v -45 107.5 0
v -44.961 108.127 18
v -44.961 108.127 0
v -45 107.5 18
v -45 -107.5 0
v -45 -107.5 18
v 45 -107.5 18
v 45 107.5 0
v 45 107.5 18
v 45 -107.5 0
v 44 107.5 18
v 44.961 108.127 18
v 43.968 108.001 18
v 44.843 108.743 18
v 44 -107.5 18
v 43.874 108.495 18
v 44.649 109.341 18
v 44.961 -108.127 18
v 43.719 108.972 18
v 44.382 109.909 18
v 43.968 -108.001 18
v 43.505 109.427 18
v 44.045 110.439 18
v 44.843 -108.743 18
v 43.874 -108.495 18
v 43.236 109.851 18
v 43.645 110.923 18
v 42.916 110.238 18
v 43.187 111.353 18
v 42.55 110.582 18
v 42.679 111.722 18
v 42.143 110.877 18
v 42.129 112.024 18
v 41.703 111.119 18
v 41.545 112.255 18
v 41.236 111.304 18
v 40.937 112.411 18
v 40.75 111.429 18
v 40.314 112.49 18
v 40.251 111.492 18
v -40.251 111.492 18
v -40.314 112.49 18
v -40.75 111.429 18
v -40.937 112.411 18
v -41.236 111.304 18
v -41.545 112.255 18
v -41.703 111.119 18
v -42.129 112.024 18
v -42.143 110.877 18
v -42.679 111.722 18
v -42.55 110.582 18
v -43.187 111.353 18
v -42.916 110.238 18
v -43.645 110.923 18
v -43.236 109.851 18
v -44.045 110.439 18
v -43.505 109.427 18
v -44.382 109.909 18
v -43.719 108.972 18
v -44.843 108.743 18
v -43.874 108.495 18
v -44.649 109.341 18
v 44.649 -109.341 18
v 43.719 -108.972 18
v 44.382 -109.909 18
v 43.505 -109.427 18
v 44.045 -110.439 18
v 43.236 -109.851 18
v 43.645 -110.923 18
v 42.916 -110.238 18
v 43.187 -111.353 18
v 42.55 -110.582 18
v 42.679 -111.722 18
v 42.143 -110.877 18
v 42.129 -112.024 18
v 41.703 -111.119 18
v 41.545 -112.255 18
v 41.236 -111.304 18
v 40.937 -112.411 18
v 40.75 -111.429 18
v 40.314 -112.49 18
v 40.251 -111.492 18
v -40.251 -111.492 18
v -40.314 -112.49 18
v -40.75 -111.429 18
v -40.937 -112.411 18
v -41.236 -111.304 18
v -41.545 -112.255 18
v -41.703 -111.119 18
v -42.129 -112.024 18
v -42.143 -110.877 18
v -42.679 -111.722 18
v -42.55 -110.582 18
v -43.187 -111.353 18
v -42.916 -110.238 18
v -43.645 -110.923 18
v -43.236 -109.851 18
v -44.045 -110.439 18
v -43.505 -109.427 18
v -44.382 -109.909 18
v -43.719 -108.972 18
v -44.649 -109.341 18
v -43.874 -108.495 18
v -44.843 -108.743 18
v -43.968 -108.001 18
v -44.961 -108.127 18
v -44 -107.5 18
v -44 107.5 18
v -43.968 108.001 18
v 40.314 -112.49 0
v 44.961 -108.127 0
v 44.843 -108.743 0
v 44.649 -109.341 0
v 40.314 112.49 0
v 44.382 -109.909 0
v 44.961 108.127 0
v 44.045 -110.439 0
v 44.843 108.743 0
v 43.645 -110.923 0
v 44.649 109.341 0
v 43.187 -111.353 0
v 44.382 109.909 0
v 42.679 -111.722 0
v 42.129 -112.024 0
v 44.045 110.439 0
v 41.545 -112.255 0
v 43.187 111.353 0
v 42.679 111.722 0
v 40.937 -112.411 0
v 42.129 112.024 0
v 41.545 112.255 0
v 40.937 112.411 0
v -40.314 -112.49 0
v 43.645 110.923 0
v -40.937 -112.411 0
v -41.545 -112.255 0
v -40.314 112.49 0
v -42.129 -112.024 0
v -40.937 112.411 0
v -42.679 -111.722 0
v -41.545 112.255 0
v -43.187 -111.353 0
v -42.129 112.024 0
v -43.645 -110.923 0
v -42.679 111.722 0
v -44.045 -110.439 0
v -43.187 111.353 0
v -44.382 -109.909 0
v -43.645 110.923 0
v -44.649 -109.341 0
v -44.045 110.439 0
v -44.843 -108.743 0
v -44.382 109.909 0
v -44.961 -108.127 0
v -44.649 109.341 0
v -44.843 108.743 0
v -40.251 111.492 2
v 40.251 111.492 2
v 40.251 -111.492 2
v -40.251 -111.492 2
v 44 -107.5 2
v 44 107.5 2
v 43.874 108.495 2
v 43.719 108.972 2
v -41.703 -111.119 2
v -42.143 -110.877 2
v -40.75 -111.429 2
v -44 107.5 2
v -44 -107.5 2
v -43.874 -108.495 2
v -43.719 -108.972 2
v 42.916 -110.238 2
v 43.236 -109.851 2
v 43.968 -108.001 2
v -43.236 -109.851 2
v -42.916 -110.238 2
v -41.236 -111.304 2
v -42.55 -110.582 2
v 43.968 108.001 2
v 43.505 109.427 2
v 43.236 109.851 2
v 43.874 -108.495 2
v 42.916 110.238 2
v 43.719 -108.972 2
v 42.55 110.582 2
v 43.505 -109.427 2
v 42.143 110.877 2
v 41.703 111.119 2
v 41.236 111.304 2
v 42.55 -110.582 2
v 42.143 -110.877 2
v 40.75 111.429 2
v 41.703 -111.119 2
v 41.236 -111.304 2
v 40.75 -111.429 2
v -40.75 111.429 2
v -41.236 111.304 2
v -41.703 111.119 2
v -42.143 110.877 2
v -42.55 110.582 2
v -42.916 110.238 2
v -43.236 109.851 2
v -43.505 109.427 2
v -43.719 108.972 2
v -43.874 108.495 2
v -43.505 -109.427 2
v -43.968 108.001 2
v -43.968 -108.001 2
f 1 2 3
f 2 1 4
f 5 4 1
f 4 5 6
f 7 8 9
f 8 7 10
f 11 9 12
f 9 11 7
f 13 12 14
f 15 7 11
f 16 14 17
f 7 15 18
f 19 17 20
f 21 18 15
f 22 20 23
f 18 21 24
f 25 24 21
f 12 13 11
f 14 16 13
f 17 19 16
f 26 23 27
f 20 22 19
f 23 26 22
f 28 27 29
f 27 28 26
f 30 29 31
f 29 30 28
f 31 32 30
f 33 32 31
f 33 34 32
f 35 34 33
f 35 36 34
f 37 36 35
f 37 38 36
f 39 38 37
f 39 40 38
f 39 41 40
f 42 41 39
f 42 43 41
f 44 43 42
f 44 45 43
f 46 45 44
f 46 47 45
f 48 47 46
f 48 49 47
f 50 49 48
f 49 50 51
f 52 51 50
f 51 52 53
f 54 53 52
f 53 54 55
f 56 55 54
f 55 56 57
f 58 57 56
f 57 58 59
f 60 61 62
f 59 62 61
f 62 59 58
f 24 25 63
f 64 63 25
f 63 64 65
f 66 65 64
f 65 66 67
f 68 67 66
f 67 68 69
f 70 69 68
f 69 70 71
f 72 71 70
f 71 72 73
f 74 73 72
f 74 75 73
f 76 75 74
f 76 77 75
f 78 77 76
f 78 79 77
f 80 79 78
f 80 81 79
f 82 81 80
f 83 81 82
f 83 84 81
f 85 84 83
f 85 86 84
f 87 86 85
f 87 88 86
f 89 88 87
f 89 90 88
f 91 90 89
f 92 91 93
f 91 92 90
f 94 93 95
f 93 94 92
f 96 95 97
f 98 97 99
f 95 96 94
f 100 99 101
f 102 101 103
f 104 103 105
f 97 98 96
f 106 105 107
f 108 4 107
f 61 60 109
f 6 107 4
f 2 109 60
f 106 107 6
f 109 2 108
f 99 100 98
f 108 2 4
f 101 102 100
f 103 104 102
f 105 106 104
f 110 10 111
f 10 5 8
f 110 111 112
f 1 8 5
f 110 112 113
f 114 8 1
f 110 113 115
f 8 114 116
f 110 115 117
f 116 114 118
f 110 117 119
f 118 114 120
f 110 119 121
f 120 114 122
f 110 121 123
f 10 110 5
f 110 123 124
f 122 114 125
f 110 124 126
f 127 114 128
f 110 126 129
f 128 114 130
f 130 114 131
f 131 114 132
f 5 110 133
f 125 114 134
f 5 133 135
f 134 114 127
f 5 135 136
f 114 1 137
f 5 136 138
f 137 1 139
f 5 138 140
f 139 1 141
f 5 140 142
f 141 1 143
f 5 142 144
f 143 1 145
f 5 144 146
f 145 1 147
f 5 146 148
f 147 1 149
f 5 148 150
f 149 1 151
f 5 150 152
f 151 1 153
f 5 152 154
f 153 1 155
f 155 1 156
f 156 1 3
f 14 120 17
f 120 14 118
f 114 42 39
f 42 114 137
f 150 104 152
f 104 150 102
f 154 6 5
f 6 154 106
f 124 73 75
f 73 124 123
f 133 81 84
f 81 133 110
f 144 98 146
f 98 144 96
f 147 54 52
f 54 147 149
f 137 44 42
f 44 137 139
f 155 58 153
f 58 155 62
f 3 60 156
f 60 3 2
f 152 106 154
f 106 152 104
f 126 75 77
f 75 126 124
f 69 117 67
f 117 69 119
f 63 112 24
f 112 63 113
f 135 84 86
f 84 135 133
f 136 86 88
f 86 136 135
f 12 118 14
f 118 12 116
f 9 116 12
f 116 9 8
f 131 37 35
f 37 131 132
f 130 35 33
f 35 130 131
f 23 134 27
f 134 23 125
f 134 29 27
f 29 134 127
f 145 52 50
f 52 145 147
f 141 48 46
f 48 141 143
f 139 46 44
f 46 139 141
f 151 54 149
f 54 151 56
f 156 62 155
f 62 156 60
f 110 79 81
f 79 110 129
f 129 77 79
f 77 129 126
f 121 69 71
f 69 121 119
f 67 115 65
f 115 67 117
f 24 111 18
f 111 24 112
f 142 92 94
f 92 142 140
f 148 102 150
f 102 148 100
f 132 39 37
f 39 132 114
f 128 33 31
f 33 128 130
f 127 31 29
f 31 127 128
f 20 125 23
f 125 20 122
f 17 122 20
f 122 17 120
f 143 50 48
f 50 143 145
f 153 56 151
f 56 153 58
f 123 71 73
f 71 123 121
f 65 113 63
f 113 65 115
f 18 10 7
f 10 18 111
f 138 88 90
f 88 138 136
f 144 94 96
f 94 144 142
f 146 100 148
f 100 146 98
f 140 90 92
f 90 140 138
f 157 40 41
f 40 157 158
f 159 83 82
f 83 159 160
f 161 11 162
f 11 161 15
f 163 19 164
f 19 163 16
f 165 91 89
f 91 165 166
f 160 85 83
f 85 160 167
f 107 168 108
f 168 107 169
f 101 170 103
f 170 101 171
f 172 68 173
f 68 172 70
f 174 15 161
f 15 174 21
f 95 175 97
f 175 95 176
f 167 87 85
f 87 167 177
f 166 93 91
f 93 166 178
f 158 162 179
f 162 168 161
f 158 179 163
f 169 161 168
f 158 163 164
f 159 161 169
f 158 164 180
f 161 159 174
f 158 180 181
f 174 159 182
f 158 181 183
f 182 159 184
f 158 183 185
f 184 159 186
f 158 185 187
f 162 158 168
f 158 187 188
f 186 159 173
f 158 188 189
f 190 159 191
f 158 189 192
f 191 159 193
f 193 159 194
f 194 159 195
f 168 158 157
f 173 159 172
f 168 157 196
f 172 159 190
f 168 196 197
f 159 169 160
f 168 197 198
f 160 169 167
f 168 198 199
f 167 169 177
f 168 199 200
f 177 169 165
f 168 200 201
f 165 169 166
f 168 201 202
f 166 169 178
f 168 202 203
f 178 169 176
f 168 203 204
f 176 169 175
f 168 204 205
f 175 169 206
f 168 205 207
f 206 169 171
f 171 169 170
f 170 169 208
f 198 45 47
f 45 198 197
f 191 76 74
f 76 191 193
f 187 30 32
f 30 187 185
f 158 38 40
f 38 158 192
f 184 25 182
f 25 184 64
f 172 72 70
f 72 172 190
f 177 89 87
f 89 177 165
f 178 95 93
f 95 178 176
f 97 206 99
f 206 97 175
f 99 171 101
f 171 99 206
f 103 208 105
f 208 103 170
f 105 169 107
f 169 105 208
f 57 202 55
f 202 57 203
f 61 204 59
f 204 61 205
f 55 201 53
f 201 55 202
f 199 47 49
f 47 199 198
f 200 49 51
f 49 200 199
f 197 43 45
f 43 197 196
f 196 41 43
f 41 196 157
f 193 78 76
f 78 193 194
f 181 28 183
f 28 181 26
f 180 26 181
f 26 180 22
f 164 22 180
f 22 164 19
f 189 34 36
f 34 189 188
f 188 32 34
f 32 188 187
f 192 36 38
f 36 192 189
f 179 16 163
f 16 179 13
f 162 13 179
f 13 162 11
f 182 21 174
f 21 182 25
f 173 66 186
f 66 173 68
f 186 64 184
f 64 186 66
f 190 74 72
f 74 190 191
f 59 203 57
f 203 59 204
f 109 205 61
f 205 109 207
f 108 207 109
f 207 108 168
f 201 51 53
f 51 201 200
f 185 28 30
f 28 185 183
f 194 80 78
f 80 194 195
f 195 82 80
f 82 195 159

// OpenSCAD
$fn = 50;


difference() {
	union() {
		hull() {
			translate(v = [-40.0000000000, 107.5000000000, 0]) {
				cylinder(h = 18, r = 5);
			}
			translate(v = [40.0000000000, 107.5000000000, 0]) {
				cylinder(h = 18, r = 5);
			}
			translate(v = [-40.0000000000, -107.5000000000, 0]) {
				cylinder(h = 18, r = 5);
			}
			translate(v = [40.0000000000, -107.5000000000, 0]) {
				cylinder(h = 18, r = 5);
			}
		}
	}
	union() {
		translate(v = [0, 0, 2]) {
			hull() {
				translate(v = [-40.0000000000, 107.5000000000, 0]) {
					cylinder(h = 16, r = 4);
				}
				translate(v = [40.0000000000, 107.5000000000, 0]) {
					cylinder(h = 16, r = 4);
				}
				translate(v = [-40.0000000000, -107.5000000000, 0]) {
					cylinder(h = 16, r = 4);
				}
				translate(v = [40.0000000000, -107.5000000000, 0]) {
					cylinder(h = 16, r = 4);
				}
			}
		}
	}
}
